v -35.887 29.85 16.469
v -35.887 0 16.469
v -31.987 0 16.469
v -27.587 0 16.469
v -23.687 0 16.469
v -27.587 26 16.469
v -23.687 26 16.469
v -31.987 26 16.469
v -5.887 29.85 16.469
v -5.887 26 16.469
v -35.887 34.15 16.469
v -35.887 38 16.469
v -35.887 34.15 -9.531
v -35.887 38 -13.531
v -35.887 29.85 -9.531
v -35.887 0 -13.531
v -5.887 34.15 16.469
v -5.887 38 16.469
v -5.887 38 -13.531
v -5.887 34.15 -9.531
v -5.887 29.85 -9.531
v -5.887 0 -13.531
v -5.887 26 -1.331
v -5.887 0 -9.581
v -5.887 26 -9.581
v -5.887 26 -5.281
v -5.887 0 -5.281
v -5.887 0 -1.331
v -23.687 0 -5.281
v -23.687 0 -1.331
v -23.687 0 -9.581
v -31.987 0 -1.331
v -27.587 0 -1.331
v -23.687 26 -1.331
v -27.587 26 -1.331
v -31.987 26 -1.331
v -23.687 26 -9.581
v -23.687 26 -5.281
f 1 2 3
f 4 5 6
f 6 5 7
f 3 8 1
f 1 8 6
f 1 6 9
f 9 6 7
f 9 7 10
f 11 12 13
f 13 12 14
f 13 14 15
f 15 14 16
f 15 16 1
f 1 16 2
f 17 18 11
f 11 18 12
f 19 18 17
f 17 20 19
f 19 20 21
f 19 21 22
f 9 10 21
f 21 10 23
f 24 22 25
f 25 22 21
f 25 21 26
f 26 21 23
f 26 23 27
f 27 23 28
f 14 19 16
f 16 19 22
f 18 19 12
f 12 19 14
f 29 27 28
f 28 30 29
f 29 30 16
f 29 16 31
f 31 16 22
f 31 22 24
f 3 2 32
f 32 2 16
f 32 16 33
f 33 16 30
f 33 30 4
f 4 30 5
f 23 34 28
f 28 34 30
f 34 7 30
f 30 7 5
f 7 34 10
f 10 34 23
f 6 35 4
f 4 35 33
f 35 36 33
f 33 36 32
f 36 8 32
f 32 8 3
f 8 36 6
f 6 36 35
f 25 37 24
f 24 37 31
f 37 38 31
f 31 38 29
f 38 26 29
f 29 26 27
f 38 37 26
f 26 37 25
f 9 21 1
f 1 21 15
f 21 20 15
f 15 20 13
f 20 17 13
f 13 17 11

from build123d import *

# Parameters (mm, degrees)
ESQUISSE1_W             = 30
ESQUISSE1_H             = 30
BOSS_EXTRU_1_DEPTH      = 38
ESQUISSE2_W             = 17.8
ESQUISSE2_H             = 4.3
ESQUISSE2_W_2           = 4.4
ESQUISSE2_H_2           = 17.8
ENL_V_MAT_EXTRU_1_DEPTH = 26
ESQUISSE5_W             = 26
ESQUISSE5_H             = 4.3
ENL_V_MAT_EXTRU_4_DEPTH = 31


with BuildPart() as part:
    # Esquisse1 → Boss.-Extru.1 (new body)
    with BuildSketch(Plane(origin=(0, 0, 0), x_dir=(1, 0, 0), z_dir=(0, 1, 0))):
        with Locations((-20.886738322, -1.468531469)):
            Rectangle(ESQUISSE1_W, ESQUISSE1_H)
    extrude(amount=BOSS_EXTRU_1_DEPTH)

    # Esquisse2 → Enlèv. mat.-Extru.1 (cut)
    with BuildSketch(Plane.XZ):
        with Locations((-14.786738322, -7.431468531)):
            Rectangle(ESQUISSE2_W, ESQUISSE2_H)
        with Locations((-29.786738322, 7.568531469)):
            Rectangle(ESQUISSE2_W_2, ESQUISSE2_H_2)
        with Locations((-14.786738322, 7.568531469)):
            Rectangle(ESQUISSE2_W, ESQUISSE2_H_2)
    extrude(amount=-ENL_V_MAT_EXTRU_1_DEPTH, mode=Mode.SUBTRACT)

    # Esquisse5 → Enlèv. mat.-Extru.4 (cut, through all)
    with BuildSketch(Plane.ZY.offset(35.886738322)):
        with Locations((3.468531469, 32)):
            Rectangle(ESQUISSE5_W, ESQUISSE5_H)
    extrude(amount=-ENL_V_MAT_EXTRU_4_DEPTH, mode=Mode.SUBTRACT)


solid = part.part
